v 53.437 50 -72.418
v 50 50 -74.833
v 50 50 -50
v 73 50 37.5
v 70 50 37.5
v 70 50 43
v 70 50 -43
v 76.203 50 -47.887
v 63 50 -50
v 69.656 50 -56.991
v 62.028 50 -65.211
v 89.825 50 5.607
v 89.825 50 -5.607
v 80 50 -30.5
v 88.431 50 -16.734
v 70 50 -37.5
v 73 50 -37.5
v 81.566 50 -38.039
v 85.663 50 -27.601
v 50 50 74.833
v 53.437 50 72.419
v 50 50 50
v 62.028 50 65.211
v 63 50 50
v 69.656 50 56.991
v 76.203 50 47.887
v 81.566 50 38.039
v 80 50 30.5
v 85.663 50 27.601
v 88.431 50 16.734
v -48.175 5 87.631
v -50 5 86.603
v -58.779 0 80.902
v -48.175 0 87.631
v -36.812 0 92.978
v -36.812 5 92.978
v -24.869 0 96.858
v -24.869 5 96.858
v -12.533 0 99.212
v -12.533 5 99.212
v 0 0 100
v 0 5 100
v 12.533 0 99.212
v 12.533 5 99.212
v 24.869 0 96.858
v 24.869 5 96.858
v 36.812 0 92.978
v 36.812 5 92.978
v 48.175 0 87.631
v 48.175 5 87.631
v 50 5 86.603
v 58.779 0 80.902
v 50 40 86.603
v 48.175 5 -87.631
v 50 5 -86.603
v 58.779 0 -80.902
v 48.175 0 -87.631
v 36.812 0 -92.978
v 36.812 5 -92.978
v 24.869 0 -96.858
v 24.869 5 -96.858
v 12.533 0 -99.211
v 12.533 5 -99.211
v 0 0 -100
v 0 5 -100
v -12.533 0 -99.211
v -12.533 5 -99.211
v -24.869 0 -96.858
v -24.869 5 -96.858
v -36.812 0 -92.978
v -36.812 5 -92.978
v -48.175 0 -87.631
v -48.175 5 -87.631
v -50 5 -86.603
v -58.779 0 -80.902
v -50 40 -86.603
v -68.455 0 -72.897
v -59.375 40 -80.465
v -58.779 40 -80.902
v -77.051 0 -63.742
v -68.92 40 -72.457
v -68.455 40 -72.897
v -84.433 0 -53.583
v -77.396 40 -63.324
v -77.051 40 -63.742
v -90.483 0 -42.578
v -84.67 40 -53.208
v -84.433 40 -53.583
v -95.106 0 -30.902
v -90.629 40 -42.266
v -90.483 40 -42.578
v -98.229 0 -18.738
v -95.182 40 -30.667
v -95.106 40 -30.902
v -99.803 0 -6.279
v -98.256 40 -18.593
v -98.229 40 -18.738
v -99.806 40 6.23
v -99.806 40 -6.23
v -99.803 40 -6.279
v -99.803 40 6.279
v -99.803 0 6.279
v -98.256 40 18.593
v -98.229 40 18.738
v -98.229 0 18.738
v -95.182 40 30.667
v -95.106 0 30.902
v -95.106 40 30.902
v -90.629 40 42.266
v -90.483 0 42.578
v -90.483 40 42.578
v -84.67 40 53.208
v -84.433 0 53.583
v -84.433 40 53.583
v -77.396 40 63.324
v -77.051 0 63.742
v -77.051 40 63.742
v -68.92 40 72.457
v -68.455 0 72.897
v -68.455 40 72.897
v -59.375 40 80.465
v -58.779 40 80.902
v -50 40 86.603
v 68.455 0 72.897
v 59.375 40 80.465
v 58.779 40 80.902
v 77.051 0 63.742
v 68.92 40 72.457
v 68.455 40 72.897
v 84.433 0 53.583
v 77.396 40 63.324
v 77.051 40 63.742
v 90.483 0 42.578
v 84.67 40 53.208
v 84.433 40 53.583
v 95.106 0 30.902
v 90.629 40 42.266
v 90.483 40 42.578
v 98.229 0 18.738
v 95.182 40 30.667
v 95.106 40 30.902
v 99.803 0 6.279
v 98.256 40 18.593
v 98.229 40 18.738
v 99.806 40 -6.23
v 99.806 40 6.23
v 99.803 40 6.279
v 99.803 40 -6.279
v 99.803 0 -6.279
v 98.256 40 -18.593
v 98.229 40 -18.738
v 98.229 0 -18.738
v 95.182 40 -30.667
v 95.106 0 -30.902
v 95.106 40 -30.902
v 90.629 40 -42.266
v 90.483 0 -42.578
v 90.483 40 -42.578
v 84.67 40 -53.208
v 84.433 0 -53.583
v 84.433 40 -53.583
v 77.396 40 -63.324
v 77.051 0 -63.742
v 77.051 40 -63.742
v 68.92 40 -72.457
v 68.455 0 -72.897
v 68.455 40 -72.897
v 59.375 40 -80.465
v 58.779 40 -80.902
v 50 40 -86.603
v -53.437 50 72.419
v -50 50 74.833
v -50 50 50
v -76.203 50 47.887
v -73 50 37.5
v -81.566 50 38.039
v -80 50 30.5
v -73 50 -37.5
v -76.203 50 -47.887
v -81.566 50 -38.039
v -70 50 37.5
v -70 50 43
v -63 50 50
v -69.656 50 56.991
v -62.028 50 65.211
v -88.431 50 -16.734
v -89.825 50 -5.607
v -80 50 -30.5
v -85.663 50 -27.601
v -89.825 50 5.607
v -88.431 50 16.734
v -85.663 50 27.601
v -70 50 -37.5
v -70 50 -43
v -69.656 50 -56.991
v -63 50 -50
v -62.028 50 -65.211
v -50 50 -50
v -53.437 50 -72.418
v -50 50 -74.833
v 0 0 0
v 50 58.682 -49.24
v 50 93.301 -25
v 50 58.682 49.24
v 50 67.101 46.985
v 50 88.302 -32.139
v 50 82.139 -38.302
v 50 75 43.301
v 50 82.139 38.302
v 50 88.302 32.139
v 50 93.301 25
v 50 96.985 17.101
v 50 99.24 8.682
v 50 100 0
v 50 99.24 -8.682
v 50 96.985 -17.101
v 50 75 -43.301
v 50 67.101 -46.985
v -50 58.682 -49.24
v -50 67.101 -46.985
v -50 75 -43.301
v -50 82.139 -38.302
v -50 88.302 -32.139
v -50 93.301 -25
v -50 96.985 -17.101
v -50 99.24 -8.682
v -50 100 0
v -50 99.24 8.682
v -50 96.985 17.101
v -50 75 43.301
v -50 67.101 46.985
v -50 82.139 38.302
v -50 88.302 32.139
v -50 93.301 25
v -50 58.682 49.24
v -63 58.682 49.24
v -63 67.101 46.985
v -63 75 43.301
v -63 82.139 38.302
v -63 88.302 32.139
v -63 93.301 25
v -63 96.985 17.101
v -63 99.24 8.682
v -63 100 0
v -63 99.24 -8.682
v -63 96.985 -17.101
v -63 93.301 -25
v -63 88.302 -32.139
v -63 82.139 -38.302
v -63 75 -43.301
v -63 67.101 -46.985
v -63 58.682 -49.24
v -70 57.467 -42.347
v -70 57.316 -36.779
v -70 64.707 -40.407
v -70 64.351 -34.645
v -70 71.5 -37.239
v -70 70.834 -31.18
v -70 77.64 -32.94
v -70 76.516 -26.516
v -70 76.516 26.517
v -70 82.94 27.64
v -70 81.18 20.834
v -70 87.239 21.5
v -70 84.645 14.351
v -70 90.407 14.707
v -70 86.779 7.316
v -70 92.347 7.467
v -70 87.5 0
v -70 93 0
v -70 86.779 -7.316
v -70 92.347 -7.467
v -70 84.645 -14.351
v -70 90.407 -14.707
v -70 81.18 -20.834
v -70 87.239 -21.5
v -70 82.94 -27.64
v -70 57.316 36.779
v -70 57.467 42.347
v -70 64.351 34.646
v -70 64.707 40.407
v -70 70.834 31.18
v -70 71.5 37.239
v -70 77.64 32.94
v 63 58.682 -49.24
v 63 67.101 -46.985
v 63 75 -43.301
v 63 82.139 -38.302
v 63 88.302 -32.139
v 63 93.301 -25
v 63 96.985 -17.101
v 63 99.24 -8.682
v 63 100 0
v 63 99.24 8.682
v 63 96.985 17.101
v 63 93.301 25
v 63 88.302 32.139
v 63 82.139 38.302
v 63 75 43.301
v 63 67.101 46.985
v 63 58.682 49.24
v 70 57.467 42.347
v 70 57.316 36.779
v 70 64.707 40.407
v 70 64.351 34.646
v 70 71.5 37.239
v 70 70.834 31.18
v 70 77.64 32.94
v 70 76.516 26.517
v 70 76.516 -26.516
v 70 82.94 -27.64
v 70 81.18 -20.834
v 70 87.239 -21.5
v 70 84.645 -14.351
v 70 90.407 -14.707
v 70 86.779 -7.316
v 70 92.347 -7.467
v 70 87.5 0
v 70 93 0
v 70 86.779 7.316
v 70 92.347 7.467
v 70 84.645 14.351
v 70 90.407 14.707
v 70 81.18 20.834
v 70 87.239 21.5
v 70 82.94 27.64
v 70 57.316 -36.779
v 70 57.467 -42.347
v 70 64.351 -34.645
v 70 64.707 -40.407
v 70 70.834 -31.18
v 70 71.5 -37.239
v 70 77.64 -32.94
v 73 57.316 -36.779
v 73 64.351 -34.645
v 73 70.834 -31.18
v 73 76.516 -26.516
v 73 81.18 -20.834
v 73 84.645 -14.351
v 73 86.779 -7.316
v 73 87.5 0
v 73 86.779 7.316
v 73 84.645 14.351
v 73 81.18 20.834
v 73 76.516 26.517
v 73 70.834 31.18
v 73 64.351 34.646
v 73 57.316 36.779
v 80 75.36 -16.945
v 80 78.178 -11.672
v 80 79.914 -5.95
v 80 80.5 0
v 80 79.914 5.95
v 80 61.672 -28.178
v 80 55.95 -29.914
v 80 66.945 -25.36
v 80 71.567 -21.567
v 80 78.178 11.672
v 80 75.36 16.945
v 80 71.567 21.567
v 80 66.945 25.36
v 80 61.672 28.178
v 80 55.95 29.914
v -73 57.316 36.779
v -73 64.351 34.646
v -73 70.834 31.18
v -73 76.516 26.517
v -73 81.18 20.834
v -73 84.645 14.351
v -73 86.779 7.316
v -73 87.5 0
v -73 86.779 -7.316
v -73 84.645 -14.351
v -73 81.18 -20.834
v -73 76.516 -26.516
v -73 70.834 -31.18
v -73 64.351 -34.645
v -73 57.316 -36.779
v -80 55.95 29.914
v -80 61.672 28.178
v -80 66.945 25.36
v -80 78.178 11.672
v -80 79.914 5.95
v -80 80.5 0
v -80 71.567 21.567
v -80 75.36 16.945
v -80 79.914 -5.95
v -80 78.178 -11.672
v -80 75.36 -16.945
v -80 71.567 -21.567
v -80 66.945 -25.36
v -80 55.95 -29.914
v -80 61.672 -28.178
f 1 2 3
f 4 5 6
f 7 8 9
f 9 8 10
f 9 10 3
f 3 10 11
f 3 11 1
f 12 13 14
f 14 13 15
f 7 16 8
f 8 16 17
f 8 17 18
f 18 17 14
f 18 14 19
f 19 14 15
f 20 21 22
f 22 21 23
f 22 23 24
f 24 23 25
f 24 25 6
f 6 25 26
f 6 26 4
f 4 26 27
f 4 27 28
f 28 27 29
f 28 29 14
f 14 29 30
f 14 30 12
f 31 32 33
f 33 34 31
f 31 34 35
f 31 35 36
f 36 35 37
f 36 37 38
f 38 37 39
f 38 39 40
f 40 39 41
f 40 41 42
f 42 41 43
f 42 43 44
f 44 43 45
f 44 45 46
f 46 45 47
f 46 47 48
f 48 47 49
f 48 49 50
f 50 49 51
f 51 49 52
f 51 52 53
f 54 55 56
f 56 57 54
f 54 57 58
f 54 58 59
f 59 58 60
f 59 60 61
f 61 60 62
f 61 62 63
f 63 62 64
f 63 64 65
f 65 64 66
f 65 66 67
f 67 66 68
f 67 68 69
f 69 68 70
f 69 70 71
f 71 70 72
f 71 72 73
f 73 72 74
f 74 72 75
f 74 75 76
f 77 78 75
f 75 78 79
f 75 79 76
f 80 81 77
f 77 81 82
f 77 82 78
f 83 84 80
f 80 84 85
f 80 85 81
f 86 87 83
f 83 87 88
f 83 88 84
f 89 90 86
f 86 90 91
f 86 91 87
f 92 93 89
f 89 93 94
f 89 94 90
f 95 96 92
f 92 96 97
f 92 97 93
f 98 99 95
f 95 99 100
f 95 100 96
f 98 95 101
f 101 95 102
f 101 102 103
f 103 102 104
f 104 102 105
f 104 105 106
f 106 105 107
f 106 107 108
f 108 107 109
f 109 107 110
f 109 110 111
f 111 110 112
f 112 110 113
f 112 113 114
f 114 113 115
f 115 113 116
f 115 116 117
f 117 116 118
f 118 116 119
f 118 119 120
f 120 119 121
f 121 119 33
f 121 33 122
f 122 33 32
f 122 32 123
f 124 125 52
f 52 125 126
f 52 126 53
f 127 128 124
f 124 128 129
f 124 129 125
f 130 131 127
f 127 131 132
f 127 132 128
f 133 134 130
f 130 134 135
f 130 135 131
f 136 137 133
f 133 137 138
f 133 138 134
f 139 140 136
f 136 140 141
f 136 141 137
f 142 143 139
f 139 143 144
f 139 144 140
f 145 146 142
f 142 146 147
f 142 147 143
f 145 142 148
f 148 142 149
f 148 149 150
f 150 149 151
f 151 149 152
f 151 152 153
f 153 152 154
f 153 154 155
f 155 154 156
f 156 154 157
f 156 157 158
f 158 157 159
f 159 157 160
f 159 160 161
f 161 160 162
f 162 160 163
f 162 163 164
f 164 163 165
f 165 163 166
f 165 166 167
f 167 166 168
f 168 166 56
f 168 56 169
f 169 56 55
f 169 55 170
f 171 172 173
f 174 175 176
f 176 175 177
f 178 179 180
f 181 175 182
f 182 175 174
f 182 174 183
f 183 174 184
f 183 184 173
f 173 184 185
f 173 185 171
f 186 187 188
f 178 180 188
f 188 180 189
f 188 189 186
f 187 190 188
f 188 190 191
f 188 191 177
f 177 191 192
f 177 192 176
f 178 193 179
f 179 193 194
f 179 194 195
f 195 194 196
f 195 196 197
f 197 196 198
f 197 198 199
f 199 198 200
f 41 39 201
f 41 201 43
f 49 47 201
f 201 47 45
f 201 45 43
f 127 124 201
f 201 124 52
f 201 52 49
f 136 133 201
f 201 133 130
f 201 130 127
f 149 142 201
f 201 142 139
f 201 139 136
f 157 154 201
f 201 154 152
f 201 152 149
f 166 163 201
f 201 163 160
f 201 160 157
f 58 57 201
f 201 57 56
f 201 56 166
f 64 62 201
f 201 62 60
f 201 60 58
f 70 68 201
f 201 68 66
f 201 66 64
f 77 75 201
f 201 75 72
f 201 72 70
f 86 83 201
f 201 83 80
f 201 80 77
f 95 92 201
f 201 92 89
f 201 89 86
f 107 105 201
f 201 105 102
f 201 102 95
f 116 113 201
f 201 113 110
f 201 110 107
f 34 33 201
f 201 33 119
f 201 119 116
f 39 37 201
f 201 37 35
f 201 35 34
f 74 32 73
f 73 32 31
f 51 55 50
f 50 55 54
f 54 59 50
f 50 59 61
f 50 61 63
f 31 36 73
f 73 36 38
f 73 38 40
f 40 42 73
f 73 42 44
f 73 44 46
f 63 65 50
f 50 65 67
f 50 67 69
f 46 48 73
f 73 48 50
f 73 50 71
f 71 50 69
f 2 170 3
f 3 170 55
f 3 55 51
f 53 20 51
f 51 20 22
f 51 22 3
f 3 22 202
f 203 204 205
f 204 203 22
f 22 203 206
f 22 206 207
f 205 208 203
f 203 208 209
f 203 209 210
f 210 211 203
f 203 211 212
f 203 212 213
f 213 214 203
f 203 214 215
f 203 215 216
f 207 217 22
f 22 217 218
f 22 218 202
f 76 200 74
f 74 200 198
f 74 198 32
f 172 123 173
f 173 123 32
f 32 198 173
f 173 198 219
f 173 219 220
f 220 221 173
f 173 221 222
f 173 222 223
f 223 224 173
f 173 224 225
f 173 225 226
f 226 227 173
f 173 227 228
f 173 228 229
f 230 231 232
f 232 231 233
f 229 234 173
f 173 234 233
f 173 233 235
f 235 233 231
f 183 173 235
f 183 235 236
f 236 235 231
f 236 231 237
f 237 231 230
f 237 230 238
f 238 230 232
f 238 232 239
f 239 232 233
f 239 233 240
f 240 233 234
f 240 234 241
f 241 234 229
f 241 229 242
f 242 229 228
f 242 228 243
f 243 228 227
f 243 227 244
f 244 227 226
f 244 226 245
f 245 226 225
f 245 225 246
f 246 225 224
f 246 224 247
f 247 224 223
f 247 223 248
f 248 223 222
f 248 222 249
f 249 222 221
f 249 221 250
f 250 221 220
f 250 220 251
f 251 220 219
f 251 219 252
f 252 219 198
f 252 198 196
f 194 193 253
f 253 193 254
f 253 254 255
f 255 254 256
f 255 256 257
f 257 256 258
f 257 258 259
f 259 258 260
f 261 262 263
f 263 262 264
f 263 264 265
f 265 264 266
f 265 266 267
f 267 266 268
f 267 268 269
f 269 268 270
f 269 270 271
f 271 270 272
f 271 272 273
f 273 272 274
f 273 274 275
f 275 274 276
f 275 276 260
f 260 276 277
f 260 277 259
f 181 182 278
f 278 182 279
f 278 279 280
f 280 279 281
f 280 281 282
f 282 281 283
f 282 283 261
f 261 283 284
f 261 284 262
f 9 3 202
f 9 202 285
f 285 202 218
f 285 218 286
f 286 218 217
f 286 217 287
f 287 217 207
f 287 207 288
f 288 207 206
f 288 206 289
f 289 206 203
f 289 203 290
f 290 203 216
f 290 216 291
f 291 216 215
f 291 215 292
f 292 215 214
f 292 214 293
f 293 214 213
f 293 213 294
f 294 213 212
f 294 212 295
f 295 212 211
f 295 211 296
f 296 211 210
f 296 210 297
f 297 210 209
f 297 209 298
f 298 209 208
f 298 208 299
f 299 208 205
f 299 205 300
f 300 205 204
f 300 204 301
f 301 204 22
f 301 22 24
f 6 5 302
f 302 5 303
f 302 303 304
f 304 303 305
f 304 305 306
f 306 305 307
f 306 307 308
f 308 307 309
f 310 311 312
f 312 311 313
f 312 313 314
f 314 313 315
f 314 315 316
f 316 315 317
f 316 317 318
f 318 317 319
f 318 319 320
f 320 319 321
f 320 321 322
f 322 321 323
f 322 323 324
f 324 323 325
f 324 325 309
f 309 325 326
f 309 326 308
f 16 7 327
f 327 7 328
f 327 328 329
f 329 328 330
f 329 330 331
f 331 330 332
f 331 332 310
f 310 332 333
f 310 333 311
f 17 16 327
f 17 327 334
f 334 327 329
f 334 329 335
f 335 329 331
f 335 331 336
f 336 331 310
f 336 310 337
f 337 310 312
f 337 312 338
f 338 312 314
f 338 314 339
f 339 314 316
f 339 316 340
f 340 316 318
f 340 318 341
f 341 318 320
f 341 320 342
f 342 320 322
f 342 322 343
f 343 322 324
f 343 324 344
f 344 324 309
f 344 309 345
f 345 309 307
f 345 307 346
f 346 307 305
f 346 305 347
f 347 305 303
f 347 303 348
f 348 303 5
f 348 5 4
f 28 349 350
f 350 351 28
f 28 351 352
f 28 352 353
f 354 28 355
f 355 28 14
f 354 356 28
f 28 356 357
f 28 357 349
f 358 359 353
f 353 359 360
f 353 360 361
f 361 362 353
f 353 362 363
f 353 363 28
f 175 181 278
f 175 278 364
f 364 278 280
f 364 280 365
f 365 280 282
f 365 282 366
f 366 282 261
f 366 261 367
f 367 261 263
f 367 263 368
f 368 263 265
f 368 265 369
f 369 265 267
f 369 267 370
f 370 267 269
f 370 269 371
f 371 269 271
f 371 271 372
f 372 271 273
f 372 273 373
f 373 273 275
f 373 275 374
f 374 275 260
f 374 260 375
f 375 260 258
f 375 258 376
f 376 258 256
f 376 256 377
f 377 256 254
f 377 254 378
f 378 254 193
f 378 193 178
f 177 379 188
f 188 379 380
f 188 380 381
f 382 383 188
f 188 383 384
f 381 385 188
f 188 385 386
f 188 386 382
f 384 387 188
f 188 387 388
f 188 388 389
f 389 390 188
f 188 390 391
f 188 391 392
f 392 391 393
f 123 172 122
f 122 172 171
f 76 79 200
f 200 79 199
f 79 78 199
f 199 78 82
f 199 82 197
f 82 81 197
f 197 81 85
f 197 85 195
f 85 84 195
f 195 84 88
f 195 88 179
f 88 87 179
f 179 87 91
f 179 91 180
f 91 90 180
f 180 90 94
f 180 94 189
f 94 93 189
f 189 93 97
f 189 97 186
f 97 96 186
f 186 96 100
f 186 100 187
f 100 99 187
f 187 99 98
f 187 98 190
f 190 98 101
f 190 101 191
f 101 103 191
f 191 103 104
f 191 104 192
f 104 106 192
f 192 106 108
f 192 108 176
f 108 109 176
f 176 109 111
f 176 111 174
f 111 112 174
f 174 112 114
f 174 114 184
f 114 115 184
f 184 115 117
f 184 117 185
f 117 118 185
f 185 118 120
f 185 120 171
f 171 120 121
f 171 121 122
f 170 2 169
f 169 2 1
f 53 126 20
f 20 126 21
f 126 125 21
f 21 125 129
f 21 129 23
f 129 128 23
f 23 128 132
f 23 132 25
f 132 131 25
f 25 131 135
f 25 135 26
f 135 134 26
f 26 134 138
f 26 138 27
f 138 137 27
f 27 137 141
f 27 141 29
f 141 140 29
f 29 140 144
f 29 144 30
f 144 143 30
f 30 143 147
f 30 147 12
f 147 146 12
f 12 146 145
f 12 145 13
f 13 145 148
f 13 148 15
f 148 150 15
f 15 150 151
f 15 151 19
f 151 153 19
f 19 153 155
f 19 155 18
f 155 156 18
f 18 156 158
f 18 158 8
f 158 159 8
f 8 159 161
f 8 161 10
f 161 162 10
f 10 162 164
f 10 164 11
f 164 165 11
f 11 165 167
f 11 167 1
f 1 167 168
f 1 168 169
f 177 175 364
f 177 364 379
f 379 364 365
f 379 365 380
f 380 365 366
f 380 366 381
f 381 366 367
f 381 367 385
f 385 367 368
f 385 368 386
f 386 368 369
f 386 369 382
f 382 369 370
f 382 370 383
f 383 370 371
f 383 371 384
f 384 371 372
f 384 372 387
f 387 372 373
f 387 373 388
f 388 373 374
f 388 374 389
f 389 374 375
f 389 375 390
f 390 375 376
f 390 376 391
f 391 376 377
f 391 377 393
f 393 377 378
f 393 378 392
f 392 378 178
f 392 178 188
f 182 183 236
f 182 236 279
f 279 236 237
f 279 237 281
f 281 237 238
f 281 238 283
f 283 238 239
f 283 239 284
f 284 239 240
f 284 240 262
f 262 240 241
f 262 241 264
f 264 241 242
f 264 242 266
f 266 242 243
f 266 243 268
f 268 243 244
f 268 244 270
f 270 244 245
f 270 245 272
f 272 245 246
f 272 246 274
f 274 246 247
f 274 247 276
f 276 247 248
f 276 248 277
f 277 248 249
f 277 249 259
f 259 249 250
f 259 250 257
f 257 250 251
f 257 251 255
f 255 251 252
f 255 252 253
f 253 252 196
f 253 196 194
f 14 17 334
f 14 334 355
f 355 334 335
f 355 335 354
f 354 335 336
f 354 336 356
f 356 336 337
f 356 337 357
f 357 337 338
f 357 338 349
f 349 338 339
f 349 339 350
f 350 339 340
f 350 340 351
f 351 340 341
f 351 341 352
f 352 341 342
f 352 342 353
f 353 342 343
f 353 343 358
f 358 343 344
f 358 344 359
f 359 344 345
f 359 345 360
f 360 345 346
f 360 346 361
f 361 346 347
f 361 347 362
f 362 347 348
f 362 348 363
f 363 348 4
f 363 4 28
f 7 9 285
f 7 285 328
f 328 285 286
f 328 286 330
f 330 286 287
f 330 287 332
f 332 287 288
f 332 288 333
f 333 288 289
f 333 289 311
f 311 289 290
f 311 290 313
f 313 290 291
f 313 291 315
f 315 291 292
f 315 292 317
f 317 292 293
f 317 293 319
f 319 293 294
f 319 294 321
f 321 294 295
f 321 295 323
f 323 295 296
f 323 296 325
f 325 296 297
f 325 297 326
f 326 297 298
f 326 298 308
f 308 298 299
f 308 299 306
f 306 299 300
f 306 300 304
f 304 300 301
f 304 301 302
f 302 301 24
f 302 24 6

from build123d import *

# Parameters (mm, degrees)
SKETCH1_R           = 100
BOSS_EXTRUDE1_DEPTH = 50
SKETCH2_W           = 100
SKETCH2_H           = 214.27053556
CUT_EXTRUDE1_DEPTH  = 45
SKETCH3_R           = 50
BOSS_EXTRUDE2_DEPTH = 20
SKETCH4_R           = 37.5
BOSS_EXTRUDE3_DEPTH = 10
CHAMFER1_SIZE       = 10
CHAMFER2_SIZE       = 7


with BuildPart() as part:
    # Sketch1 → Boss-Extrude1 (new body)
    with BuildSketch(Plane(origin=(0, 0, 0), x_dir=(1, 0, 0), z_dir=(0, 1, 0))):
        with Locations(Location((0, 0, 0), (0, 0, 270))):
            Circle(SKETCH1_R)
    extrude(amount=BOSS_EXTRUDE1_DEPTH)

    # Sketch2 → Cut-Extrude1 (cut)
    with BuildSketch(Plane(origin=(0, 50, 0), x_dir=(1, 0, 0), z_dir=(0, 1, 0))):
        Rectangle(SKETCH2_W, SKETCH2_H)
    extrude(amount=-CUT_EXTRUDE1_DEPTH, mode=Mode.SUBTRACT)

    # Sketch3 → Boss-Extrude2 (add)
    with BuildSketch(Plane(origin=(-50, 0, 0), x_dir=(0, 0, -1), z_dir=(1, 0, 0))):
        with Locations((0, 50)):
            Circle(SKETCH3_R)
    boss_extrude2 = extrude(amount=-BOSS_EXTRUDE2_DEPTH)

    # Mirror1: Boss-Extrude2 across plane
    add(boss_extrude2.mirror(Plane(origin=(0, 0, 0), x_dir=(0, 0, 1), z_dir=(1, 0, 0))))

    # Sketch4 → Boss-Extrude3 (add)
    with BuildSketch(Plane(origin=(70, 0, 0), x_dir=(0, 0, -1), z_dir=(1, 0, 0))):
        with Locations((0, 50)):
            Circle(SKETCH4_R)
    boss_extrude3 = extrude(amount=BOSS_EXTRUDE3_DEPTH)

    # Mirror2: Boss-Extrude3 across plane
    add(boss_extrude3.mirror(Plane(origin=(0, 0, 0), x_dir=(0, 0, 1), z_dir=(1, 0, 0))))

    # Chamfer1
    chamfer1_edges = [part.edges().sort_by_distance(p)[0] for p in [
        (100, 50, 0),
        (-100, 50, 0),
    ]]
    chamfer(chamfer1_edges, length=CHAMFER1_SIZE)

    # Chamfer2
    chamfer2_edges = [part.edges().sort_by_distance(p)[0] for p in [
        (-70, 100, 0),
        (70, 100, 0),
        (80, 87.5, 0),
        (-80, 87.5, 0),
    ]]
    chamfer(chamfer2_edges, length=CHAMFER2_SIZE)


solid = part.part
